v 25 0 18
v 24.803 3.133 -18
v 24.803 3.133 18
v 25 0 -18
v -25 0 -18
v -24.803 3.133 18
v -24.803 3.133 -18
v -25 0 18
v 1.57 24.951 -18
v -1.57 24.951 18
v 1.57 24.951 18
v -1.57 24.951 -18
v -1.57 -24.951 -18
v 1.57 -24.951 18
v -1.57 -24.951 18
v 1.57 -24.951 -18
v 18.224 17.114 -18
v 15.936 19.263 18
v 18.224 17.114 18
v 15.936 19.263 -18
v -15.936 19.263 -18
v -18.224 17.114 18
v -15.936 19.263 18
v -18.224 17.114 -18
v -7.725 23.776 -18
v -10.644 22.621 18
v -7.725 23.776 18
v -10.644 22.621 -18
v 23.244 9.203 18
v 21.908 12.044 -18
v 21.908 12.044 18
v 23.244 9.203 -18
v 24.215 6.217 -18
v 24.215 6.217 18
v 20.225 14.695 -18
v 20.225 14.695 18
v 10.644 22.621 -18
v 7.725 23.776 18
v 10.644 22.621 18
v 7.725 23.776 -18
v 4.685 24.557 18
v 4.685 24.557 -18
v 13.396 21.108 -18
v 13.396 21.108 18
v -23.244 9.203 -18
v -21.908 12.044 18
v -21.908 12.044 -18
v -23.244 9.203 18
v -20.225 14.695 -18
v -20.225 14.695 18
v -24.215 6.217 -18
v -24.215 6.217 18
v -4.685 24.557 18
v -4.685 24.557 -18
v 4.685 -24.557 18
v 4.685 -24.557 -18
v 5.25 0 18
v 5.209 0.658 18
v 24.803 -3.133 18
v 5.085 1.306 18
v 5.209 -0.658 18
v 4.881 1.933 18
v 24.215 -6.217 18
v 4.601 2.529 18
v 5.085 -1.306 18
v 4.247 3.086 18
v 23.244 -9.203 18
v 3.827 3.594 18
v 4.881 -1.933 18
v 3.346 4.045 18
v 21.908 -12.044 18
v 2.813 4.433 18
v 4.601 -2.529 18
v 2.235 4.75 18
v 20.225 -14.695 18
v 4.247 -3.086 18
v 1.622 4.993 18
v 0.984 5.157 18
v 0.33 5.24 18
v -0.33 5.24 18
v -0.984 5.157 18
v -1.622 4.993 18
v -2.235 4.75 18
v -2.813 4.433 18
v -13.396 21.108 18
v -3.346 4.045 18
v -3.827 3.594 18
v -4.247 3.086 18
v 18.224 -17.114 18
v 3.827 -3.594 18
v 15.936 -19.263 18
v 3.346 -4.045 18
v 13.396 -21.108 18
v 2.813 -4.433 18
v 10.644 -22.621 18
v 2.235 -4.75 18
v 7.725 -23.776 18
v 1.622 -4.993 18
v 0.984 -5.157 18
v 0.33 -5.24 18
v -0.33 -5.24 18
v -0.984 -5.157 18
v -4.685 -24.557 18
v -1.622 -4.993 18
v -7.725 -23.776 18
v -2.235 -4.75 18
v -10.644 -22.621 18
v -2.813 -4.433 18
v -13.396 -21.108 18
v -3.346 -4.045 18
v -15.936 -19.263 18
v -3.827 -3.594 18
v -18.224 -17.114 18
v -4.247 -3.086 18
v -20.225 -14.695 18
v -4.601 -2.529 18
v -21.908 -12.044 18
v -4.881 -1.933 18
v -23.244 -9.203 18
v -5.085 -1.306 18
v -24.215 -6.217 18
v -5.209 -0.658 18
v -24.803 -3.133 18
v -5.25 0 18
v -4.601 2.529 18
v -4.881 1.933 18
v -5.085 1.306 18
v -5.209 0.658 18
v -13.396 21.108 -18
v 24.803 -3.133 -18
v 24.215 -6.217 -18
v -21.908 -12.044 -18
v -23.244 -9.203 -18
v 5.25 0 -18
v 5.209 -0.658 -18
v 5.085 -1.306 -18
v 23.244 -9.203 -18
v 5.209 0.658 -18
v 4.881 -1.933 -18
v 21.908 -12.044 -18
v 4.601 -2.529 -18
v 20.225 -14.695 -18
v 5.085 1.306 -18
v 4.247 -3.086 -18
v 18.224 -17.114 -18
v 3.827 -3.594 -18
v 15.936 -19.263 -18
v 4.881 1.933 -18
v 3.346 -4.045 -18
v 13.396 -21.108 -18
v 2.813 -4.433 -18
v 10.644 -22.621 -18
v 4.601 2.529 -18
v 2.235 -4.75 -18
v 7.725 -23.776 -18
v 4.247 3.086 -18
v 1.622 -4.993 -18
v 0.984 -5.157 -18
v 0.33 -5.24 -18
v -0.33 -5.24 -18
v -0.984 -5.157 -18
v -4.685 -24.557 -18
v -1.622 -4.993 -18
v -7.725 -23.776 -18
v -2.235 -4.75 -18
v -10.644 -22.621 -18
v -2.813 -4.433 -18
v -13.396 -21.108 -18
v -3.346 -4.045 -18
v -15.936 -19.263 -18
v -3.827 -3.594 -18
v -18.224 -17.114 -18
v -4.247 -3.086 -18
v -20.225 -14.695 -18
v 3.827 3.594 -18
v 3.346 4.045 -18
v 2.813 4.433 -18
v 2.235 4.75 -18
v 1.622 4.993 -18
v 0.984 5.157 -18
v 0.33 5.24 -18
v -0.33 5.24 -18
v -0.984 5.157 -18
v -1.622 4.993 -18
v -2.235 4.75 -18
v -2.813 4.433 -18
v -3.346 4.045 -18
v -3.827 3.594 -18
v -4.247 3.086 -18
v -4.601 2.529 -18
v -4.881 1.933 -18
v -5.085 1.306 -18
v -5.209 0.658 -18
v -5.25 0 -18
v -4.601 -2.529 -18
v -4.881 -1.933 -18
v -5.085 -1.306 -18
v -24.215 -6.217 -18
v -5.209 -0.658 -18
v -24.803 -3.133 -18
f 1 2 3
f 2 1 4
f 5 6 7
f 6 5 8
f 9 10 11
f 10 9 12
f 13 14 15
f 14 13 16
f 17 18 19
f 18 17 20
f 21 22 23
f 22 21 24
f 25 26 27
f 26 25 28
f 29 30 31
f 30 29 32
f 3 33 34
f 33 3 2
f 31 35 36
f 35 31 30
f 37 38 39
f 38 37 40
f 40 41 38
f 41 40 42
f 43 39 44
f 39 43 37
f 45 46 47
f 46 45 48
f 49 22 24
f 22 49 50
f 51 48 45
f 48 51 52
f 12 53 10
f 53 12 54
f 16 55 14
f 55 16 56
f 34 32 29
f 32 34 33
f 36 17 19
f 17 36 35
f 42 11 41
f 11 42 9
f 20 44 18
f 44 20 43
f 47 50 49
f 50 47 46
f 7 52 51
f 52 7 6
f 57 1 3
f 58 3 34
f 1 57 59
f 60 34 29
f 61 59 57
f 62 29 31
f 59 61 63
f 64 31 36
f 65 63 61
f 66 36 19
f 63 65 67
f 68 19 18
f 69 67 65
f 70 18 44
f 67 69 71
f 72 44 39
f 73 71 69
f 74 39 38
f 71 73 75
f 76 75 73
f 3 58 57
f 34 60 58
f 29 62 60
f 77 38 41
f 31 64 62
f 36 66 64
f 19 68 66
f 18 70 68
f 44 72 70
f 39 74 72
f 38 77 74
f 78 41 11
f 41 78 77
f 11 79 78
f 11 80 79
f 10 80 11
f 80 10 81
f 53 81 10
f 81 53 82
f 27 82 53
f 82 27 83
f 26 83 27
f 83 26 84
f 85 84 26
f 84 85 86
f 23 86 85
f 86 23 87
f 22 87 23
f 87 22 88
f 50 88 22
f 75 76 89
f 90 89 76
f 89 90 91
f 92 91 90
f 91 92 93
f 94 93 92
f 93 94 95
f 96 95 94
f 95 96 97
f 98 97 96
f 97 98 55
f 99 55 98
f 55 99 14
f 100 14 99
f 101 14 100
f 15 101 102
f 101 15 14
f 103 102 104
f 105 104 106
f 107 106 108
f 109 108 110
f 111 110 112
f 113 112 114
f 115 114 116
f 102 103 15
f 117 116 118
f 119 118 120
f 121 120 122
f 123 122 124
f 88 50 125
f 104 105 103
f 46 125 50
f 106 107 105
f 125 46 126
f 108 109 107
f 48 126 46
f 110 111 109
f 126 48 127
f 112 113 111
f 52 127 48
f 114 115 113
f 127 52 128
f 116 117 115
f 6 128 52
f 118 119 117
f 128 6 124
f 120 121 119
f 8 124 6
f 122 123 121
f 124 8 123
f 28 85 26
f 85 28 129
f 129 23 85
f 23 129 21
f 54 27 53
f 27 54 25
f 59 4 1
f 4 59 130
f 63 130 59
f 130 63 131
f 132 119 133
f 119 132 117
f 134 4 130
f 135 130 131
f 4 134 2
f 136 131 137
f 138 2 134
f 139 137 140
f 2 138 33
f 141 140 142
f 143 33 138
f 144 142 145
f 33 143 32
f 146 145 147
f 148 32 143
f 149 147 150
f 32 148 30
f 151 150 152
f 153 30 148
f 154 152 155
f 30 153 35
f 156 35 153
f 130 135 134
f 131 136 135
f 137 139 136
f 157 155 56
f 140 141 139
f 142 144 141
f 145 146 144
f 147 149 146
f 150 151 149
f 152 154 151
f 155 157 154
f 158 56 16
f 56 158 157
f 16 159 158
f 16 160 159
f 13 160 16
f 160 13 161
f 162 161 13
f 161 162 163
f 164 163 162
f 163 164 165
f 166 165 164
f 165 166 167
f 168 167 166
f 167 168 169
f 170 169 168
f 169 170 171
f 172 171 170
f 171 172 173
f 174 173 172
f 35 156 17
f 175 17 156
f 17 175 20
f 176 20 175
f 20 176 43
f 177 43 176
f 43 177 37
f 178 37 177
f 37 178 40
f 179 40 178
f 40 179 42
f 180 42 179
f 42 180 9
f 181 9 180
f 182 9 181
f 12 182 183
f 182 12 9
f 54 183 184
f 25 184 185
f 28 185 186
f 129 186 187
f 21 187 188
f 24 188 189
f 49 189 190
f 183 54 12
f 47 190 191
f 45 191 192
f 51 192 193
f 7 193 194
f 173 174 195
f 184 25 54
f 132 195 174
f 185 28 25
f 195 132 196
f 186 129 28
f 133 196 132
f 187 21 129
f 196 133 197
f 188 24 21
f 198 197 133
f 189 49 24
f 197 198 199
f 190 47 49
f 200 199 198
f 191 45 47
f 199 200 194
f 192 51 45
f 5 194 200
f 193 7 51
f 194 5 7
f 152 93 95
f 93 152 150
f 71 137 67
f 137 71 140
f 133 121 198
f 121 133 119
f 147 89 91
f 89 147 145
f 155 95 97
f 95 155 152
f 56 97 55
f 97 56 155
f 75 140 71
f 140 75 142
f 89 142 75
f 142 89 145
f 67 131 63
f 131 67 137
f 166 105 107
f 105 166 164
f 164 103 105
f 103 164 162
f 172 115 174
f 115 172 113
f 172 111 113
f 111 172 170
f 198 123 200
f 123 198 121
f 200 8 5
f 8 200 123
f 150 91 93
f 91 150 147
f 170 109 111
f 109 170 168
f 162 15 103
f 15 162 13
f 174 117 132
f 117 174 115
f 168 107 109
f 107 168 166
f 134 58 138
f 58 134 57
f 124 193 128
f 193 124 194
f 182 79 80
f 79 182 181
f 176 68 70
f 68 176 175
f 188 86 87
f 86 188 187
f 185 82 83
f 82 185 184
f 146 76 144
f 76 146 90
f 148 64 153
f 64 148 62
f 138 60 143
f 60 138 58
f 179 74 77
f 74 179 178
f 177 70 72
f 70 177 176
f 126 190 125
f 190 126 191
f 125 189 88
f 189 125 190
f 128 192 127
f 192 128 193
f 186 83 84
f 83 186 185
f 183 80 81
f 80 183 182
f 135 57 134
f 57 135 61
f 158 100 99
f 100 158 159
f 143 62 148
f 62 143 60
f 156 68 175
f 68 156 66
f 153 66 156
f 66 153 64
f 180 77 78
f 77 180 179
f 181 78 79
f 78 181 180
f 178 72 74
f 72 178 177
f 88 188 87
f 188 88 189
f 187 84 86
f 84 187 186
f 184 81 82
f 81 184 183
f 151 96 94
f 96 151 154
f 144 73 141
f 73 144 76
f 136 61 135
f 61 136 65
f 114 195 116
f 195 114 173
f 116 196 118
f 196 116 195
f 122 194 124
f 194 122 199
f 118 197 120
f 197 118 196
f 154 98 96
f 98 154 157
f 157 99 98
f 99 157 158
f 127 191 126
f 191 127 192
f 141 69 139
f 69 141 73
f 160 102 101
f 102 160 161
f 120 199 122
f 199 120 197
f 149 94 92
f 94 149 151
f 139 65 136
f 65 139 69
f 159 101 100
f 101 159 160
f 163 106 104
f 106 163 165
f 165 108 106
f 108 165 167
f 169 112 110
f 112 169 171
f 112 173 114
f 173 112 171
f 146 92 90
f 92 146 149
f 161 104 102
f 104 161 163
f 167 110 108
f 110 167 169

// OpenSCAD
$fn = 50;


difference() {
	union() {
		translate(v = [0, 0, -18.0000000000]) {
			cylinder(h = 36, r = 25.0000000000);
		}
	}
	union() {
		translate(v = [0, 0, -100.0000000000]) {
			cylinder(h = 200, r = 5.2500000000);
		}
	}
}
